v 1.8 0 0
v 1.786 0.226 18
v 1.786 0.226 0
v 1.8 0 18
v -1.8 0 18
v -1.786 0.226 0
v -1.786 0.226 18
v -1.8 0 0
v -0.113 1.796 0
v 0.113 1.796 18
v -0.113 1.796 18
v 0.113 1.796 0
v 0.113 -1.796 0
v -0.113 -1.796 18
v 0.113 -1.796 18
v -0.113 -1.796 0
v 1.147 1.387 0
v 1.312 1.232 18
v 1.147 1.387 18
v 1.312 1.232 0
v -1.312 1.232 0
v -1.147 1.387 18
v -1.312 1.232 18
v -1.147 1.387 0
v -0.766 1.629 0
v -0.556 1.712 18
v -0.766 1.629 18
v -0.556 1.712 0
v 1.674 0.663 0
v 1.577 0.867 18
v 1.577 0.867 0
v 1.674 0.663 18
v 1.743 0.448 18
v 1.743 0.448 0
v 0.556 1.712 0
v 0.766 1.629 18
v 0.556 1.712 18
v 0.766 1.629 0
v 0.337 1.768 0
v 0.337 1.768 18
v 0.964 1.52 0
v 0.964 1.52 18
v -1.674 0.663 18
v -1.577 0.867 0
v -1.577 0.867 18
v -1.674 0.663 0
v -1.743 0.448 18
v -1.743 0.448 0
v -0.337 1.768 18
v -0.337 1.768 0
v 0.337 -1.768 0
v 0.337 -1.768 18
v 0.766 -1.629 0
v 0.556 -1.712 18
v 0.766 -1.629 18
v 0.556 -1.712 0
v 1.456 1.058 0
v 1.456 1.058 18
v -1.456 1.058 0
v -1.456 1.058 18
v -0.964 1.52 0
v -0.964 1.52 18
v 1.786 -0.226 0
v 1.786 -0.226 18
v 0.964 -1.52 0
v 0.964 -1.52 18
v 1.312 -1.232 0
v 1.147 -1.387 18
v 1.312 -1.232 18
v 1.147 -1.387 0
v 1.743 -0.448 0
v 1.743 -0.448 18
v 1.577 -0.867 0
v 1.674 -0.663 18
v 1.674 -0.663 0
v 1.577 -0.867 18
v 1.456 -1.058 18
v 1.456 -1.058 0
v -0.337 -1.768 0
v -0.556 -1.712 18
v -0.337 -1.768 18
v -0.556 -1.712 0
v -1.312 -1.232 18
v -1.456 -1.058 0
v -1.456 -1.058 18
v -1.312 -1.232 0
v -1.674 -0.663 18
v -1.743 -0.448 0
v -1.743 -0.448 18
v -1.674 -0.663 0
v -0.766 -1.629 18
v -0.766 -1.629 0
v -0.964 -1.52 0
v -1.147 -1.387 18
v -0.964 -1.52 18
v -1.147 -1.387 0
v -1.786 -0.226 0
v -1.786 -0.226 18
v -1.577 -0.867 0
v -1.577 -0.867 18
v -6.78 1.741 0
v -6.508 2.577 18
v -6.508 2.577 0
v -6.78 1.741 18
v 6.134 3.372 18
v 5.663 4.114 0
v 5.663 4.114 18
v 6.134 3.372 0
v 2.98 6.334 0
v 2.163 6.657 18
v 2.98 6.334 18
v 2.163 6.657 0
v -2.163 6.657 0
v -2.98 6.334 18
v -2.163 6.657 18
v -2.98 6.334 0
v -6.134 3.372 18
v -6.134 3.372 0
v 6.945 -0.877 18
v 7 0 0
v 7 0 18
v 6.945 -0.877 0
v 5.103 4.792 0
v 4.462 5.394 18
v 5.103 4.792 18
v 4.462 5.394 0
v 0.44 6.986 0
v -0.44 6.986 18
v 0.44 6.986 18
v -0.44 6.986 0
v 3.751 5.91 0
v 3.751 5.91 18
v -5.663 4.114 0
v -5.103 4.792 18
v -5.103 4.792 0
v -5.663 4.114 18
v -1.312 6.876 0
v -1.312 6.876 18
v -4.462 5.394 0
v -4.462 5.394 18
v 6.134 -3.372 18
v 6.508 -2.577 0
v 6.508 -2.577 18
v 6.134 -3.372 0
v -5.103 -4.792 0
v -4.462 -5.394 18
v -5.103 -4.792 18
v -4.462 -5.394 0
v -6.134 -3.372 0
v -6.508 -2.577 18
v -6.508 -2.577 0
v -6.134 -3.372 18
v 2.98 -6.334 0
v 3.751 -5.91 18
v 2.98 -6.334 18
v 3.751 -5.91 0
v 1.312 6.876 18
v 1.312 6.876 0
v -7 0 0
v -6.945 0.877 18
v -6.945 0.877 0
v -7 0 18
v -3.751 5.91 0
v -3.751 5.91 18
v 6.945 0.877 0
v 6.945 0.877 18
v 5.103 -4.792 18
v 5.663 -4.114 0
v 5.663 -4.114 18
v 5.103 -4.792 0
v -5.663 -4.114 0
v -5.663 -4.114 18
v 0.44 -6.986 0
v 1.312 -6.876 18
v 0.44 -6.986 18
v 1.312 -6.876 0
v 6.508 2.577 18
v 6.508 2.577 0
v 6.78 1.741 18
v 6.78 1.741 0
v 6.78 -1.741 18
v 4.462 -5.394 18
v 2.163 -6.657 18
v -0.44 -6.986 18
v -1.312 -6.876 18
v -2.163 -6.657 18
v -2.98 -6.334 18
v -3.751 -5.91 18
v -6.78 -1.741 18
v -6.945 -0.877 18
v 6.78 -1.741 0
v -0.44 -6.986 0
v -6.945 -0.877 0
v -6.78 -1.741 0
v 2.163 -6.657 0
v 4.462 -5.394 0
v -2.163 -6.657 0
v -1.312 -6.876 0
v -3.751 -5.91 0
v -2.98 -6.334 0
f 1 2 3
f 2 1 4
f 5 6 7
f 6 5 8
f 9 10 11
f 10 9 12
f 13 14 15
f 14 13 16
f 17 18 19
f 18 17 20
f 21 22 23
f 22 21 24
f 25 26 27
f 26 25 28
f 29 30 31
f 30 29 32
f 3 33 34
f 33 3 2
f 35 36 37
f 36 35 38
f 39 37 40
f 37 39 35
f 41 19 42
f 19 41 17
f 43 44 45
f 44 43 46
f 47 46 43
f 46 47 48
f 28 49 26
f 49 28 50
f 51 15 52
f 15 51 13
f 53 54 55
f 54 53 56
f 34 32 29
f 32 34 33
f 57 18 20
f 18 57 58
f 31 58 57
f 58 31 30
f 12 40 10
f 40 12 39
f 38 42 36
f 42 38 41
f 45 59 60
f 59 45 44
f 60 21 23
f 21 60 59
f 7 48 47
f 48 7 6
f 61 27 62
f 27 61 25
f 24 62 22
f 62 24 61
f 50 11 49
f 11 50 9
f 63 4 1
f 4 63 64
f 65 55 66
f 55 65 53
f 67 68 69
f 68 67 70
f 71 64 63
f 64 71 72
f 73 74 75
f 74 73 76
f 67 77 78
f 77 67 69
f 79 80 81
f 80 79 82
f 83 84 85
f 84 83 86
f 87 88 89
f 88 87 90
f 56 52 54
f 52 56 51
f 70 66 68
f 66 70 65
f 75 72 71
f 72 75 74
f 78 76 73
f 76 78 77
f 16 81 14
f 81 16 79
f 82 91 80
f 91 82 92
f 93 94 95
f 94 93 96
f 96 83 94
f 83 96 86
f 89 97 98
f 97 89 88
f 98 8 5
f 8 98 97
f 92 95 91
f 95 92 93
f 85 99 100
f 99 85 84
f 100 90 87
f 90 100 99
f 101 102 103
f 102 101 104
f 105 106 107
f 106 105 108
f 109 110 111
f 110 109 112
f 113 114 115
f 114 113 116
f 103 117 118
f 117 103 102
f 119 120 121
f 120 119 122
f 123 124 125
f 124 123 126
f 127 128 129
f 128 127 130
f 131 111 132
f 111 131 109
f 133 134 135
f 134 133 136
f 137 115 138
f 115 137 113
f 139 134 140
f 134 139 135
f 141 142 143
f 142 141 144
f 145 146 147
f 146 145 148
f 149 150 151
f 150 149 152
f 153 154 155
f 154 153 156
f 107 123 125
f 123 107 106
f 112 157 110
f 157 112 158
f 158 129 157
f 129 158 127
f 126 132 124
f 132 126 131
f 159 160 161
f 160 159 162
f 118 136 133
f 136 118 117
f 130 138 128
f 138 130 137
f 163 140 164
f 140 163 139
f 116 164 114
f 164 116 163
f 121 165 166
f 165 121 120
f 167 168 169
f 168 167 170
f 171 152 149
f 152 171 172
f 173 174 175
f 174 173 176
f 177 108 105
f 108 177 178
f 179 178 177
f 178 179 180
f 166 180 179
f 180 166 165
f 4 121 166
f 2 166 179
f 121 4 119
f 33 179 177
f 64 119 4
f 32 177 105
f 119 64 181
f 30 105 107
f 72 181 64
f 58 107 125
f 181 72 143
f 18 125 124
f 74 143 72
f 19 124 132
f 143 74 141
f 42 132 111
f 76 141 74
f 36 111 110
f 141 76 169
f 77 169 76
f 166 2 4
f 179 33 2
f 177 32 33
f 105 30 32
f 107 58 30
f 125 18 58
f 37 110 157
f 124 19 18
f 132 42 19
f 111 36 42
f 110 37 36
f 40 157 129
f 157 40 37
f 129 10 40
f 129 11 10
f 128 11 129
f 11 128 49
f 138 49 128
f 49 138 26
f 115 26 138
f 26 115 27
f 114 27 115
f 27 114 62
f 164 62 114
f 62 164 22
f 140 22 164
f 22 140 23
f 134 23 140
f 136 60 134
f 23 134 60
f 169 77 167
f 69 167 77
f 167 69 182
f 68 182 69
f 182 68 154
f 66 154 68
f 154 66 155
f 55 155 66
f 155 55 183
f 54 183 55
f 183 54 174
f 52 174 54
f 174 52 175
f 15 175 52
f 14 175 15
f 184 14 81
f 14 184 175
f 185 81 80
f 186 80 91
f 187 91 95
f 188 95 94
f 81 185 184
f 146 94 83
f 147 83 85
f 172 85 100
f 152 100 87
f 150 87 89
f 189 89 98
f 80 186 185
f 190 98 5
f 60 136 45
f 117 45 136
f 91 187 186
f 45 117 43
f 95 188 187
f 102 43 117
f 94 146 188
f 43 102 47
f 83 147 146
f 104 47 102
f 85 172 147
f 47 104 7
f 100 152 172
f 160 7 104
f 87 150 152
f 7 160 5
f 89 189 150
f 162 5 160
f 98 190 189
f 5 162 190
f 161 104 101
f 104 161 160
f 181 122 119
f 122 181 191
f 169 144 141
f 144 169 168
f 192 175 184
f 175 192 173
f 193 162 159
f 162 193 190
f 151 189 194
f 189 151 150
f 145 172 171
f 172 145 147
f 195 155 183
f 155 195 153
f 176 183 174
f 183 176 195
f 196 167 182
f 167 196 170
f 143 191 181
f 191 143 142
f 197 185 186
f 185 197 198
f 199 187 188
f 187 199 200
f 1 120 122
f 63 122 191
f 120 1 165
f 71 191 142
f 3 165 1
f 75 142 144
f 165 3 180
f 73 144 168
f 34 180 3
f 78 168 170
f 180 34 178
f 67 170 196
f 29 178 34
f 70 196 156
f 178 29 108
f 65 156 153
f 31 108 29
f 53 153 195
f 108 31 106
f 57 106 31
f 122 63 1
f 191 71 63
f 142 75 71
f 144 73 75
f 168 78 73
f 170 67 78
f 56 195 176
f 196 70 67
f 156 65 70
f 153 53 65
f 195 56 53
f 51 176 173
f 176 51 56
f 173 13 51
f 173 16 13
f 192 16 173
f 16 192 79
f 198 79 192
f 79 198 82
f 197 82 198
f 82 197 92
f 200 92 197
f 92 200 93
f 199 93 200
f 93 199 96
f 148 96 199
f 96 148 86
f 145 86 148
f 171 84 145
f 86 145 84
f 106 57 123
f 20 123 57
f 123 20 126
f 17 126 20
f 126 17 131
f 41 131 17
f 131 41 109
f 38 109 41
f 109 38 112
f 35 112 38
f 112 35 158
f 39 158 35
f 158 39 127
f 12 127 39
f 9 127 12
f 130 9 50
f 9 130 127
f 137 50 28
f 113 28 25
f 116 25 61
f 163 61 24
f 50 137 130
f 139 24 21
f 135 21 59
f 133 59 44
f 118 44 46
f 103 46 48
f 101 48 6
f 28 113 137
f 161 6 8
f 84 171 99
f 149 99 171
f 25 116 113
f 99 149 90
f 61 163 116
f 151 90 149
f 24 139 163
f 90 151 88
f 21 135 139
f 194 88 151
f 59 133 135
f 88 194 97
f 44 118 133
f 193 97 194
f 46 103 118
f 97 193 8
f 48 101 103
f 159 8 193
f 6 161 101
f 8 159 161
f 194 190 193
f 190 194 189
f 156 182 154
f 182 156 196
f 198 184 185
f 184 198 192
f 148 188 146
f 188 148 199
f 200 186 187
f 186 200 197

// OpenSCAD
$fn = 50;


difference() {
	union() {
		cylinder(h = 18, r = 7.0000000000);
	}
	union() {
		translate(v = [0, 0, -100]) {
			cylinder(h = 200, r = 1.8000000000);
		}
		translate(v = [0, 0, -100]) {
			cylinder(h = 200, r = 1.8000000000);
		}
	}
}
